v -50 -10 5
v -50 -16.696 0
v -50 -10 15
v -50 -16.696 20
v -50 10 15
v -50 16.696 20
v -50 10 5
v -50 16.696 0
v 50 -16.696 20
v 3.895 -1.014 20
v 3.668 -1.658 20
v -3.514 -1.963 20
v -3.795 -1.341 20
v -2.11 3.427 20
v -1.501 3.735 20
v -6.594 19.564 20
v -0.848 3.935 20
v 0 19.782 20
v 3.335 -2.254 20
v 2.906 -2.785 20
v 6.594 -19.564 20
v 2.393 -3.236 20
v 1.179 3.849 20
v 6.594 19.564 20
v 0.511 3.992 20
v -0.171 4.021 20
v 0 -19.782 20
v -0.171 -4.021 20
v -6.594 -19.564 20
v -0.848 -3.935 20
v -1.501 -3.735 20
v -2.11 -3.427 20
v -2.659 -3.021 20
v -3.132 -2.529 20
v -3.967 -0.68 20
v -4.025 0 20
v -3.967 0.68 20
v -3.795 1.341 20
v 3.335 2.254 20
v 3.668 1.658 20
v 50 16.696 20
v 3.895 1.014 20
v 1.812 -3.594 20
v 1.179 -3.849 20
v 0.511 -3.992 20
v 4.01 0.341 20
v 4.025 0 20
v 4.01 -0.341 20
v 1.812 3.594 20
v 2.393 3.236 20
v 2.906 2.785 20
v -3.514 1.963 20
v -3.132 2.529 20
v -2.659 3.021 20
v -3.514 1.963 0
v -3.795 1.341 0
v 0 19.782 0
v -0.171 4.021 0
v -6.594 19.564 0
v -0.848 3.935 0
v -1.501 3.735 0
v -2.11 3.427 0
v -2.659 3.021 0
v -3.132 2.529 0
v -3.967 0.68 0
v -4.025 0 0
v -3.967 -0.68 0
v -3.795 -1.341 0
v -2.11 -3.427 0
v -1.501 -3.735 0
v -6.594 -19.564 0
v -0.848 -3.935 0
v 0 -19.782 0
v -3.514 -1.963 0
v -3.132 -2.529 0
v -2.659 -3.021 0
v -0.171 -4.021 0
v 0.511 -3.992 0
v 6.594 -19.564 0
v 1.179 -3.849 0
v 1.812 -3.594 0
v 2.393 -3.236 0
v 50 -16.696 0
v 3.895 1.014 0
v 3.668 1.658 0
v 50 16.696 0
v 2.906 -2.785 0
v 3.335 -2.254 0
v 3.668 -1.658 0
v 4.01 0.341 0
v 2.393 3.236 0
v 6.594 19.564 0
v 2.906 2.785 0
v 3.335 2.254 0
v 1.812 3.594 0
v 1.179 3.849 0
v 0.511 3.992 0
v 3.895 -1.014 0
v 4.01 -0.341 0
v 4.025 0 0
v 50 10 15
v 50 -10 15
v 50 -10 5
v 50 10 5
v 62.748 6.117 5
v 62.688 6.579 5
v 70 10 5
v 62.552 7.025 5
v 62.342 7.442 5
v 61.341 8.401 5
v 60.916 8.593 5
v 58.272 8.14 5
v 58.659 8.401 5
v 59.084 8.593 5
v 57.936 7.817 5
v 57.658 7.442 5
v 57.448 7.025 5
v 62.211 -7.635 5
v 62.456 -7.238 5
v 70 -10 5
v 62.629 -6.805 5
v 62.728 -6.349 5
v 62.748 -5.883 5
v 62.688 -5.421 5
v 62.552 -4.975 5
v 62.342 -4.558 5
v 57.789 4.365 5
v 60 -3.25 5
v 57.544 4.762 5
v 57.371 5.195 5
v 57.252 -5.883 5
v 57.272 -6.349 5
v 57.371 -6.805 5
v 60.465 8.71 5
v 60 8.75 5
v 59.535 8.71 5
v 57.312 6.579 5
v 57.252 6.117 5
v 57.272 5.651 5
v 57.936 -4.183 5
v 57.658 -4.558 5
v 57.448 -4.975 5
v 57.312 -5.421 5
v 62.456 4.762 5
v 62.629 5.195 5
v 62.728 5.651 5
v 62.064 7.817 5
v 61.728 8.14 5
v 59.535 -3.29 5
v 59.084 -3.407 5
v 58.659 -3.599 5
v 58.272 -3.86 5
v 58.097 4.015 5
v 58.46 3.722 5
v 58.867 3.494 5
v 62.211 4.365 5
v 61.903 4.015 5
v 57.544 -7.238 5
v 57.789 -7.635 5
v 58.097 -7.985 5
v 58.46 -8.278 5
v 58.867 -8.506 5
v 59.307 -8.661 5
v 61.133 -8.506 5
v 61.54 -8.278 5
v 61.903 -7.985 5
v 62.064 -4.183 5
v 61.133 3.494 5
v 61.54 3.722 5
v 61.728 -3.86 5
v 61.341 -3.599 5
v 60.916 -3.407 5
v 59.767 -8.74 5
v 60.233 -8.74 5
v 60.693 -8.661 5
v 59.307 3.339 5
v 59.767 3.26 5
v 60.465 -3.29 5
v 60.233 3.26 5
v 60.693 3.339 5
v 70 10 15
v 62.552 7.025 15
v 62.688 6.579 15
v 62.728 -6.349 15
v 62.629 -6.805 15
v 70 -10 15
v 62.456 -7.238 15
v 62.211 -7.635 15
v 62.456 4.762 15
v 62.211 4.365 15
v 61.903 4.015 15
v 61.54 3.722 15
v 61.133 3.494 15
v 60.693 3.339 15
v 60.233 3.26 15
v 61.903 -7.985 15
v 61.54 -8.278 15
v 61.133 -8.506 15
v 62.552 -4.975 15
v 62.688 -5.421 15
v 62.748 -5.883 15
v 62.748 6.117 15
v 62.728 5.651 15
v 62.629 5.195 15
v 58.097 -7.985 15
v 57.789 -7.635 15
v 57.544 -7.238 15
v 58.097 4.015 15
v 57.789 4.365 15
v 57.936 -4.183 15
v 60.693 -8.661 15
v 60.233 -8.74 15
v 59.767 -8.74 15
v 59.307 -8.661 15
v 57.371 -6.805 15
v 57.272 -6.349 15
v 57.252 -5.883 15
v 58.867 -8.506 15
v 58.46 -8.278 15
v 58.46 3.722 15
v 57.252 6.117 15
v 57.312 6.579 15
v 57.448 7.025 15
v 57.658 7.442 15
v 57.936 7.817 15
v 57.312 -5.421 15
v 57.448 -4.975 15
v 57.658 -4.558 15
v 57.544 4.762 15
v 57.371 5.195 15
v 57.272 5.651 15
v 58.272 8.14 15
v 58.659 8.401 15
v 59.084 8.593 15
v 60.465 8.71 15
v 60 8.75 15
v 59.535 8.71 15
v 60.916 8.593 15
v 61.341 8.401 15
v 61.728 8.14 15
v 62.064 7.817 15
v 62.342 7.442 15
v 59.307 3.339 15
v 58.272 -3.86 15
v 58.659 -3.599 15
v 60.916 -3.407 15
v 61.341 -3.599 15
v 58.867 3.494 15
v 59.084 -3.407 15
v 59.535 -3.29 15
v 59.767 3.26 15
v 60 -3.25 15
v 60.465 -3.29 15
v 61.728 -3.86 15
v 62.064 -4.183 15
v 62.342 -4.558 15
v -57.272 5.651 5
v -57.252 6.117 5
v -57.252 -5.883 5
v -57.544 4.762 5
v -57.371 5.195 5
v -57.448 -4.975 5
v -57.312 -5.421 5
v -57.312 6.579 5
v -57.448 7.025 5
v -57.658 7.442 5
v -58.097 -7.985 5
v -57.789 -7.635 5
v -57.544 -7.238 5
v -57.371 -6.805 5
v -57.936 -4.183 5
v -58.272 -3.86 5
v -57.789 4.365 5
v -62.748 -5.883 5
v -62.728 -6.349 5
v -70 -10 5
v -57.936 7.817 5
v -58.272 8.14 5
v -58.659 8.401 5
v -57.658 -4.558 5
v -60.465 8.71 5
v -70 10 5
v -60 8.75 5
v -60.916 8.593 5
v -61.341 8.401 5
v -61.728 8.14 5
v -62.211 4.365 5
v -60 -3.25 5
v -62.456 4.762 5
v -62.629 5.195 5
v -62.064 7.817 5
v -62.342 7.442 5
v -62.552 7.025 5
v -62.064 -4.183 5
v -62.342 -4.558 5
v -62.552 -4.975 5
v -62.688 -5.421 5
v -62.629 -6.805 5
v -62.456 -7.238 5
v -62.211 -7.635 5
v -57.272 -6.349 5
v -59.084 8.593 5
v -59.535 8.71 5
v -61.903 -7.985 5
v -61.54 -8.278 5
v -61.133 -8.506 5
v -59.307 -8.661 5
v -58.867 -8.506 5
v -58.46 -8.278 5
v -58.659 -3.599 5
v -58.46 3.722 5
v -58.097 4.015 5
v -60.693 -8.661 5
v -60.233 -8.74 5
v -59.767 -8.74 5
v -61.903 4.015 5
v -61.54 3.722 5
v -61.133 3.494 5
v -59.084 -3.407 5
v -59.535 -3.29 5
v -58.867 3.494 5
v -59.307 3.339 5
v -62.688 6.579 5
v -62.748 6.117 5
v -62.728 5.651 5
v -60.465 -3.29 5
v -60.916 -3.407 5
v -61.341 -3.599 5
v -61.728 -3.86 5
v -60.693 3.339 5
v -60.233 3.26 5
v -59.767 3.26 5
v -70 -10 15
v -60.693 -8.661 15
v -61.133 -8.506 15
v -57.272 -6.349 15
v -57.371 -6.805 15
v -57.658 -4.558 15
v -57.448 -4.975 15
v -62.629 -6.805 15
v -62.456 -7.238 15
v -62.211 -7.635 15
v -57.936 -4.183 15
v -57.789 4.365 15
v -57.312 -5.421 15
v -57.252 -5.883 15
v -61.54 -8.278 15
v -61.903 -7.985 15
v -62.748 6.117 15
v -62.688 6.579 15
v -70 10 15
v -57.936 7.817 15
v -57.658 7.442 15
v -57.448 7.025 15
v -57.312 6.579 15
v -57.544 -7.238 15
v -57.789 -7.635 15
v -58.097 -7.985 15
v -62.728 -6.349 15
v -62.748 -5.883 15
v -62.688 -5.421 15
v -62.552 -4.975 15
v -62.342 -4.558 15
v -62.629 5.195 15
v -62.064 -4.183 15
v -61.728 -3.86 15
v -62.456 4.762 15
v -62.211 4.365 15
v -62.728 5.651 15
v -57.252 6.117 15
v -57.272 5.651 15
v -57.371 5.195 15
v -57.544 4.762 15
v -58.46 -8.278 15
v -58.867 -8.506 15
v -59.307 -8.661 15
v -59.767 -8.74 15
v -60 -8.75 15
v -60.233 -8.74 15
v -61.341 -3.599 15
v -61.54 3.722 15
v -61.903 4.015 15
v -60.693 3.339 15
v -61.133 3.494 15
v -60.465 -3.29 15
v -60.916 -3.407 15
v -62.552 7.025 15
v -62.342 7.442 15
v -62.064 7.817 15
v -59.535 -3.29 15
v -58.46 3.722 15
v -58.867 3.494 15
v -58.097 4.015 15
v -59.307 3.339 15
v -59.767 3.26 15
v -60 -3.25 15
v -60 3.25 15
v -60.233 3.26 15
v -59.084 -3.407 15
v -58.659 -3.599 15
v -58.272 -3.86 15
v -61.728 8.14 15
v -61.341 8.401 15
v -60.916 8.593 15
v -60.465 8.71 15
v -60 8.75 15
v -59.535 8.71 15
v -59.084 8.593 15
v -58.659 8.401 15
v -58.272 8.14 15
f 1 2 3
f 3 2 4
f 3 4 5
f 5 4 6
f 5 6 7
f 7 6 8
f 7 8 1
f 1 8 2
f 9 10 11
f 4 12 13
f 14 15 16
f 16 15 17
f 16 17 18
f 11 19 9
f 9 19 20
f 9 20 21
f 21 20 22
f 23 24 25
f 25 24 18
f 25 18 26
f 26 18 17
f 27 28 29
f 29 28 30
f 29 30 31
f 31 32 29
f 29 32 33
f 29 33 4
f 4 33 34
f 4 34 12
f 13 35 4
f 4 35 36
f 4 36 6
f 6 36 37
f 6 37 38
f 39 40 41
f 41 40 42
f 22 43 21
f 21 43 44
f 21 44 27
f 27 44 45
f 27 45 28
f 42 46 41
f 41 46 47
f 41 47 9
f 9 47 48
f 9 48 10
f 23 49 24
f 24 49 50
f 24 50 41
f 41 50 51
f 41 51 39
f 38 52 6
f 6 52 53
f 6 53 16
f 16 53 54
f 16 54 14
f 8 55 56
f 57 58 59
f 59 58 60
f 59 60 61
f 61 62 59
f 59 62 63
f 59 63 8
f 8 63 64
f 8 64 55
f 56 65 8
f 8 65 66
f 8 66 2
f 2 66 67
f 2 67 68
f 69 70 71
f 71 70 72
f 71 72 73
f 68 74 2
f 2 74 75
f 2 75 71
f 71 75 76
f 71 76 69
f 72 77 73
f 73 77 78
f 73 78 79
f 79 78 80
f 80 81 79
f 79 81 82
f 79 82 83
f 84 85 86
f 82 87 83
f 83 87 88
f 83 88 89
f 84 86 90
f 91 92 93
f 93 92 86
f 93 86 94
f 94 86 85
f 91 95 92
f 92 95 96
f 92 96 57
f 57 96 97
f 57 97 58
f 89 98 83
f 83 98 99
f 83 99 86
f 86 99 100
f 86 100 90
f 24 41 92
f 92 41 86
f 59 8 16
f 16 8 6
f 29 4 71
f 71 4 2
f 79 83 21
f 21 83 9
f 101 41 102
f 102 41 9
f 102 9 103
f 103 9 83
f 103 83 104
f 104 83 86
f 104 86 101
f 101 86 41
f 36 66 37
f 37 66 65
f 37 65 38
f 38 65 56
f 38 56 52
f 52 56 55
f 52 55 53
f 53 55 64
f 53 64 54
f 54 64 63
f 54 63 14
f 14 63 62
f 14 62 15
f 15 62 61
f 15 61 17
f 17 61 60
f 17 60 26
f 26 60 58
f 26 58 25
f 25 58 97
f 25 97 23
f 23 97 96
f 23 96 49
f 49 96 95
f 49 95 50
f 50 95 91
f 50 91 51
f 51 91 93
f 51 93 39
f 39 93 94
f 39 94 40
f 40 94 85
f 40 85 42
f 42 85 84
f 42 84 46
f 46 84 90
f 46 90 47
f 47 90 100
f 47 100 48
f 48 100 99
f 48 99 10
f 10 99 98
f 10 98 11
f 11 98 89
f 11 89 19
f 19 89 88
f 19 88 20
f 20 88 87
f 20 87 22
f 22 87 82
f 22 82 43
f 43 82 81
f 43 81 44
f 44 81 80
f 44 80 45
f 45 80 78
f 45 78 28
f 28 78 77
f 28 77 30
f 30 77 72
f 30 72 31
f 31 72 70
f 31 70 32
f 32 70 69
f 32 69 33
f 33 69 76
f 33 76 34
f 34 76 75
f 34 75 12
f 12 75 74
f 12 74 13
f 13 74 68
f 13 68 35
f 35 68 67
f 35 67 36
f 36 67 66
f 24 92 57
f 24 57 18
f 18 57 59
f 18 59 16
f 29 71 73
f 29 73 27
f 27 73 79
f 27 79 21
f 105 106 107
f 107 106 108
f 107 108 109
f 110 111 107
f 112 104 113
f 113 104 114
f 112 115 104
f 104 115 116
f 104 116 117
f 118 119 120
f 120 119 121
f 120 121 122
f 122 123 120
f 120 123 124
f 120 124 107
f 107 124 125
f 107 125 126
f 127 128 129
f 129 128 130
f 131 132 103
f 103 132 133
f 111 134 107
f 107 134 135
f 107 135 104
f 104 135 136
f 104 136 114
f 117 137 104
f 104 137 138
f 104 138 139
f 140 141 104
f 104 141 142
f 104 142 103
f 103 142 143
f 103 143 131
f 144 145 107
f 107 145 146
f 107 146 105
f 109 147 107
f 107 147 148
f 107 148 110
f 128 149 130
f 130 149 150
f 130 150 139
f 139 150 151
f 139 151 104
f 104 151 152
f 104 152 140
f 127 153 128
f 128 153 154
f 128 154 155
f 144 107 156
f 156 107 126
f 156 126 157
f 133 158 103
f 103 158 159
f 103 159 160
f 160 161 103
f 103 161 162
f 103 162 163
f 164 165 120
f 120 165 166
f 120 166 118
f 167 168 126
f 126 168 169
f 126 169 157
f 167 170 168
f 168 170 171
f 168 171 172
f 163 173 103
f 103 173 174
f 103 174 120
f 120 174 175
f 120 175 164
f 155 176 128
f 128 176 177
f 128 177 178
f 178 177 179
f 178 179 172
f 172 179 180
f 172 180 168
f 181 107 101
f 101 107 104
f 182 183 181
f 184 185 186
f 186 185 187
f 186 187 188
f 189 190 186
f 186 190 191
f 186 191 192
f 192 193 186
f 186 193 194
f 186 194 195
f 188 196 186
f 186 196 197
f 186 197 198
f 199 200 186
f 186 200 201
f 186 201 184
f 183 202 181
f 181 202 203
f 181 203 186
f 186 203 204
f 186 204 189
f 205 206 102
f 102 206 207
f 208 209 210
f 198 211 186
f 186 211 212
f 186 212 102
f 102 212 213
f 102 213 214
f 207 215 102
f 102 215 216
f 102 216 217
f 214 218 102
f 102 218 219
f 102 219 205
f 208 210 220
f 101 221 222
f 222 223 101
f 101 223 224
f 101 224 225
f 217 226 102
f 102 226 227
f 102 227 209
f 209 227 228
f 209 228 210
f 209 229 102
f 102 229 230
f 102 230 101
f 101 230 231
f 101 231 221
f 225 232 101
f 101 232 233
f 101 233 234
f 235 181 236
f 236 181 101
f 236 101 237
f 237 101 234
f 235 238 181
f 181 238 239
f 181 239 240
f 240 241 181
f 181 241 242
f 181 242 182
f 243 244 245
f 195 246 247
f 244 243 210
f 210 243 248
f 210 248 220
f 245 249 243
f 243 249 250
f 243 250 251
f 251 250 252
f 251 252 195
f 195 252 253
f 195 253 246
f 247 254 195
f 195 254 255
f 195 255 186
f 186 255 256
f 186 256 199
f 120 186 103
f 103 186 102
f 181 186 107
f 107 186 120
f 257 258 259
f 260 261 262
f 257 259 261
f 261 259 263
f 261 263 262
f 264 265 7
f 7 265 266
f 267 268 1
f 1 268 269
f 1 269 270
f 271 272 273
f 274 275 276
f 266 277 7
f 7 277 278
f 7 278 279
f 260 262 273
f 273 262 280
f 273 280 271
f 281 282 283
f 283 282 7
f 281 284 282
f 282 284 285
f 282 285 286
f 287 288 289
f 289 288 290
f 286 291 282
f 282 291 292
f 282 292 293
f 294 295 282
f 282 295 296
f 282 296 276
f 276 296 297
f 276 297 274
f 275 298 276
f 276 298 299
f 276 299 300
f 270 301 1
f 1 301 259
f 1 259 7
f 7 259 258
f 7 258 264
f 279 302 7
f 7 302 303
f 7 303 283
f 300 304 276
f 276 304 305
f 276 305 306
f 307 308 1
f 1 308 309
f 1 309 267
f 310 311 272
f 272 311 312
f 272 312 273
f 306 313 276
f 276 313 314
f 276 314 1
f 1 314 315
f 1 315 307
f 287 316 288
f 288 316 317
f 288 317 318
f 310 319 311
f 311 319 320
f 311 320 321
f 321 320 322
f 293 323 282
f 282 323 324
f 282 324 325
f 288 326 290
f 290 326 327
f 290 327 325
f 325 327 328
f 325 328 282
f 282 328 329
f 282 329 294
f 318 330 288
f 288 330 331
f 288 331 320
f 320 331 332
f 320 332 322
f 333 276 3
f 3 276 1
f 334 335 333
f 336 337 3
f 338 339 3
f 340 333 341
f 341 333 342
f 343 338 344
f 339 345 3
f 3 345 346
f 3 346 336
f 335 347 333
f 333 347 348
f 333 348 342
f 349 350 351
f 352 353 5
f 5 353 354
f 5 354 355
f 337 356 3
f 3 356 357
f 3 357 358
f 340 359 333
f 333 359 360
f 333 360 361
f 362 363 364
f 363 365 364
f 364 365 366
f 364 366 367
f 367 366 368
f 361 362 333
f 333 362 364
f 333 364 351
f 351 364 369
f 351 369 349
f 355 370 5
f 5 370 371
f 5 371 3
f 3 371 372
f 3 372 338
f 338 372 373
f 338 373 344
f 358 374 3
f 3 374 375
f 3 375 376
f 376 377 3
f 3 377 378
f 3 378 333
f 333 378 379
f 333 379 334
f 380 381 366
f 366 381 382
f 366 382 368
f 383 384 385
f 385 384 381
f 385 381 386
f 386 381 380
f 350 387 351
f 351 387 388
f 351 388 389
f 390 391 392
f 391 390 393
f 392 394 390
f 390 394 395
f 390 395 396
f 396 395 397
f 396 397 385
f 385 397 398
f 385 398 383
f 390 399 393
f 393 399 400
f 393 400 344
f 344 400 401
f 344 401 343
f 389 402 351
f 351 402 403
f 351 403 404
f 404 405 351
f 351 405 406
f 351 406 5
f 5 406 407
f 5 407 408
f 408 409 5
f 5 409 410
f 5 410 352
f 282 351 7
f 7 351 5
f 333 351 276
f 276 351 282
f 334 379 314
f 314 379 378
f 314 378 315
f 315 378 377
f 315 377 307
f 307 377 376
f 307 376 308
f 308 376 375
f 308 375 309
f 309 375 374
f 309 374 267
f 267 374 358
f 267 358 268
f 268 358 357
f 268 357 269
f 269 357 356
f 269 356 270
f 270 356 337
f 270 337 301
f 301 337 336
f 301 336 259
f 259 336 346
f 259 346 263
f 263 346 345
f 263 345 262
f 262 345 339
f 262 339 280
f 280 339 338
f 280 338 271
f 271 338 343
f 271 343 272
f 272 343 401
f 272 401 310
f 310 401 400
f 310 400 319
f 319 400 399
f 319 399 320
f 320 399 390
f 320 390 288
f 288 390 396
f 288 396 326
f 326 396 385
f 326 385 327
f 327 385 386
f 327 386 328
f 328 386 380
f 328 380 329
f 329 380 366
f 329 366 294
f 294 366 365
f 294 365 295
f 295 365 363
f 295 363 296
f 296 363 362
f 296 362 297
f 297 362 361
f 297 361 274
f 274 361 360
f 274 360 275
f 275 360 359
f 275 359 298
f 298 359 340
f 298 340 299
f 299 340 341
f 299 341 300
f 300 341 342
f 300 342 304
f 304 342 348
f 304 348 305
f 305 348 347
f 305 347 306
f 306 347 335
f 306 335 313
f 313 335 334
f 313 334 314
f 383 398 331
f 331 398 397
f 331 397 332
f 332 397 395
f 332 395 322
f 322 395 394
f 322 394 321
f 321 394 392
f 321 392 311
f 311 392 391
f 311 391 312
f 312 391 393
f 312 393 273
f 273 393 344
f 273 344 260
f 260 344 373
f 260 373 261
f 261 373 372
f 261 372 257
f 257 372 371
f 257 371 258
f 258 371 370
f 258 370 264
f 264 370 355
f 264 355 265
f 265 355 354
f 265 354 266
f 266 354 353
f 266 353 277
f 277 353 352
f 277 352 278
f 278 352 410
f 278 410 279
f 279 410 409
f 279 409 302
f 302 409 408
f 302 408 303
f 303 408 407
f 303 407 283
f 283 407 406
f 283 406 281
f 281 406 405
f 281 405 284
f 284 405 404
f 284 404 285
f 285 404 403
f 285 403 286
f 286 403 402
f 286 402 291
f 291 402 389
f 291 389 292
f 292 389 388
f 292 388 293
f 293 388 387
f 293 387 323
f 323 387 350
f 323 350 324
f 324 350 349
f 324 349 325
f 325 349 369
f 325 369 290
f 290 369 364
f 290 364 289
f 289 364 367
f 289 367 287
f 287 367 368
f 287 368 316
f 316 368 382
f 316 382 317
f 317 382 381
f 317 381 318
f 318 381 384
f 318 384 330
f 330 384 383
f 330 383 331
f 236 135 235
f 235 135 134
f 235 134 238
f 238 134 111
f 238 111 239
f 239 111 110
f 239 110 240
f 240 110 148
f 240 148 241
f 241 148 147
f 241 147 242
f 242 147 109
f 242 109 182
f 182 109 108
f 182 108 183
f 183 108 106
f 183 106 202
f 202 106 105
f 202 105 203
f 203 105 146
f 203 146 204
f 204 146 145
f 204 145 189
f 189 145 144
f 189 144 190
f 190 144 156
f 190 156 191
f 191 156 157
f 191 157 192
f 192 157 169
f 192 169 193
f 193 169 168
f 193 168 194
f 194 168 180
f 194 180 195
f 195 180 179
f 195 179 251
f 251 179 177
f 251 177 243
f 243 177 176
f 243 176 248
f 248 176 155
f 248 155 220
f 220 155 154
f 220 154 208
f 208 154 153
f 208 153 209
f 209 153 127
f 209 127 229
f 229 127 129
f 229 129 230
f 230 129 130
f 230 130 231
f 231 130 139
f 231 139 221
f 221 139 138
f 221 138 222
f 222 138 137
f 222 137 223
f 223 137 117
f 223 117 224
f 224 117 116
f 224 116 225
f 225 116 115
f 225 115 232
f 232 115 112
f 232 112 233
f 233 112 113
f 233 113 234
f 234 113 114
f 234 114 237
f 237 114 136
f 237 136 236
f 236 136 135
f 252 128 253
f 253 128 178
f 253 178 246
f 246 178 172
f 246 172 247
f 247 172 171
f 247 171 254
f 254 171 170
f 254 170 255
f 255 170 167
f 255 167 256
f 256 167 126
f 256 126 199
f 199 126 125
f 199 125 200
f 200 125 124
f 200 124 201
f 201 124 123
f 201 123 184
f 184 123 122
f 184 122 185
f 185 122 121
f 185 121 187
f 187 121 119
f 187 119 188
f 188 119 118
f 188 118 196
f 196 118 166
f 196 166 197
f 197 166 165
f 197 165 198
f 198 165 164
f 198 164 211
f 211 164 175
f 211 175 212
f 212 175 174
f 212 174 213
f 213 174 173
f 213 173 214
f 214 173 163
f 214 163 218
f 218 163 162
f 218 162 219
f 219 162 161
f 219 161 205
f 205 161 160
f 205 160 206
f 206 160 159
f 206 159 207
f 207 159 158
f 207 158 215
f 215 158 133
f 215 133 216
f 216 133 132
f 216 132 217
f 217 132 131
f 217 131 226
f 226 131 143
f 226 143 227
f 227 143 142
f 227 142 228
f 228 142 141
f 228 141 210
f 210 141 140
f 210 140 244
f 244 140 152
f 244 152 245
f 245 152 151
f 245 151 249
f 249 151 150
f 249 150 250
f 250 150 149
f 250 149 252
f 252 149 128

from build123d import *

# Parameters (mm, degrees)
SKETCH1_R           = 4.025
BOSS_EXTRUDE1_DEPTH = 20
FILLET1_R           = 100
SKETCH2_W           = 10
SKETCH2_H           = 20
BOSS_EXTRUDE2_DEPTH = 20
SKETCH3_R           = 2.75
CUT_EXTRUDE1_DEPTH  = 16


with BuildPart() as part:
    # Sketch1 → Boss-Extrude1 (new body)
    with BuildSketch(Plane.XY):
        Polygon((50, 16.695671227), (50, -16.695671227), (0, -20), (-50, -16.695671227), (-50, 16.695671227), (0, 20), align=None)
        Circle(SKETCH1_R, mode=Mode.SUBTRACT)
    extrude(amount=BOSS_EXTRUDE1_DEPTH)

    # Fillet1
    fillet1_edges = [part.edges().sort_by_distance(p)[0] for p in [
        (0, -20, 10),
        (0, 20, 10),
    ]]
    fillet(fillet1_edges, radius=FILLET1_R)

    # Sketch2 → Boss-Extrude2 (add)
    with BuildSketch(Plane(origin=(50, 0, 0), x_dir=(0, 0, -1), z_dir=(1, 0, 0))):
        with Locations((-10, 0)):
            Rectangle(SKETCH2_W, SKETCH2_H)
    boss_extrude2 = extrude(amount=BOSS_EXTRUDE2_DEPTH)

    # Mirror1: Boss-Extrude2 across plane
    add(boss_extrude2.mirror(Plane(origin=(0, 0, 0), x_dir=(0, 0, 1), z_dir=(1, 0, 0))))

    # Sketch3 → Cut-Extrude1 (cut, through all)
    with BuildSketch(Plane(origin=(0, 0, 5), x_dir=(-1, 0, 0), z_dir=(0, 0, -1))):
        with Locations((60, -6)):
            Circle(SKETCH3_R)
        with Locations((60, 6)):
            Circle(SKETCH3_R)
        with Locations((-60, -6)):
            Circle(SKETCH3_R)
        with Locations((-60, 6)):
            Circle(SKETCH3_R)
    extrude(amount=-CUT_EXTRUDE1_DEPTH, mode=Mode.SUBTRACT)


solid = part.part
